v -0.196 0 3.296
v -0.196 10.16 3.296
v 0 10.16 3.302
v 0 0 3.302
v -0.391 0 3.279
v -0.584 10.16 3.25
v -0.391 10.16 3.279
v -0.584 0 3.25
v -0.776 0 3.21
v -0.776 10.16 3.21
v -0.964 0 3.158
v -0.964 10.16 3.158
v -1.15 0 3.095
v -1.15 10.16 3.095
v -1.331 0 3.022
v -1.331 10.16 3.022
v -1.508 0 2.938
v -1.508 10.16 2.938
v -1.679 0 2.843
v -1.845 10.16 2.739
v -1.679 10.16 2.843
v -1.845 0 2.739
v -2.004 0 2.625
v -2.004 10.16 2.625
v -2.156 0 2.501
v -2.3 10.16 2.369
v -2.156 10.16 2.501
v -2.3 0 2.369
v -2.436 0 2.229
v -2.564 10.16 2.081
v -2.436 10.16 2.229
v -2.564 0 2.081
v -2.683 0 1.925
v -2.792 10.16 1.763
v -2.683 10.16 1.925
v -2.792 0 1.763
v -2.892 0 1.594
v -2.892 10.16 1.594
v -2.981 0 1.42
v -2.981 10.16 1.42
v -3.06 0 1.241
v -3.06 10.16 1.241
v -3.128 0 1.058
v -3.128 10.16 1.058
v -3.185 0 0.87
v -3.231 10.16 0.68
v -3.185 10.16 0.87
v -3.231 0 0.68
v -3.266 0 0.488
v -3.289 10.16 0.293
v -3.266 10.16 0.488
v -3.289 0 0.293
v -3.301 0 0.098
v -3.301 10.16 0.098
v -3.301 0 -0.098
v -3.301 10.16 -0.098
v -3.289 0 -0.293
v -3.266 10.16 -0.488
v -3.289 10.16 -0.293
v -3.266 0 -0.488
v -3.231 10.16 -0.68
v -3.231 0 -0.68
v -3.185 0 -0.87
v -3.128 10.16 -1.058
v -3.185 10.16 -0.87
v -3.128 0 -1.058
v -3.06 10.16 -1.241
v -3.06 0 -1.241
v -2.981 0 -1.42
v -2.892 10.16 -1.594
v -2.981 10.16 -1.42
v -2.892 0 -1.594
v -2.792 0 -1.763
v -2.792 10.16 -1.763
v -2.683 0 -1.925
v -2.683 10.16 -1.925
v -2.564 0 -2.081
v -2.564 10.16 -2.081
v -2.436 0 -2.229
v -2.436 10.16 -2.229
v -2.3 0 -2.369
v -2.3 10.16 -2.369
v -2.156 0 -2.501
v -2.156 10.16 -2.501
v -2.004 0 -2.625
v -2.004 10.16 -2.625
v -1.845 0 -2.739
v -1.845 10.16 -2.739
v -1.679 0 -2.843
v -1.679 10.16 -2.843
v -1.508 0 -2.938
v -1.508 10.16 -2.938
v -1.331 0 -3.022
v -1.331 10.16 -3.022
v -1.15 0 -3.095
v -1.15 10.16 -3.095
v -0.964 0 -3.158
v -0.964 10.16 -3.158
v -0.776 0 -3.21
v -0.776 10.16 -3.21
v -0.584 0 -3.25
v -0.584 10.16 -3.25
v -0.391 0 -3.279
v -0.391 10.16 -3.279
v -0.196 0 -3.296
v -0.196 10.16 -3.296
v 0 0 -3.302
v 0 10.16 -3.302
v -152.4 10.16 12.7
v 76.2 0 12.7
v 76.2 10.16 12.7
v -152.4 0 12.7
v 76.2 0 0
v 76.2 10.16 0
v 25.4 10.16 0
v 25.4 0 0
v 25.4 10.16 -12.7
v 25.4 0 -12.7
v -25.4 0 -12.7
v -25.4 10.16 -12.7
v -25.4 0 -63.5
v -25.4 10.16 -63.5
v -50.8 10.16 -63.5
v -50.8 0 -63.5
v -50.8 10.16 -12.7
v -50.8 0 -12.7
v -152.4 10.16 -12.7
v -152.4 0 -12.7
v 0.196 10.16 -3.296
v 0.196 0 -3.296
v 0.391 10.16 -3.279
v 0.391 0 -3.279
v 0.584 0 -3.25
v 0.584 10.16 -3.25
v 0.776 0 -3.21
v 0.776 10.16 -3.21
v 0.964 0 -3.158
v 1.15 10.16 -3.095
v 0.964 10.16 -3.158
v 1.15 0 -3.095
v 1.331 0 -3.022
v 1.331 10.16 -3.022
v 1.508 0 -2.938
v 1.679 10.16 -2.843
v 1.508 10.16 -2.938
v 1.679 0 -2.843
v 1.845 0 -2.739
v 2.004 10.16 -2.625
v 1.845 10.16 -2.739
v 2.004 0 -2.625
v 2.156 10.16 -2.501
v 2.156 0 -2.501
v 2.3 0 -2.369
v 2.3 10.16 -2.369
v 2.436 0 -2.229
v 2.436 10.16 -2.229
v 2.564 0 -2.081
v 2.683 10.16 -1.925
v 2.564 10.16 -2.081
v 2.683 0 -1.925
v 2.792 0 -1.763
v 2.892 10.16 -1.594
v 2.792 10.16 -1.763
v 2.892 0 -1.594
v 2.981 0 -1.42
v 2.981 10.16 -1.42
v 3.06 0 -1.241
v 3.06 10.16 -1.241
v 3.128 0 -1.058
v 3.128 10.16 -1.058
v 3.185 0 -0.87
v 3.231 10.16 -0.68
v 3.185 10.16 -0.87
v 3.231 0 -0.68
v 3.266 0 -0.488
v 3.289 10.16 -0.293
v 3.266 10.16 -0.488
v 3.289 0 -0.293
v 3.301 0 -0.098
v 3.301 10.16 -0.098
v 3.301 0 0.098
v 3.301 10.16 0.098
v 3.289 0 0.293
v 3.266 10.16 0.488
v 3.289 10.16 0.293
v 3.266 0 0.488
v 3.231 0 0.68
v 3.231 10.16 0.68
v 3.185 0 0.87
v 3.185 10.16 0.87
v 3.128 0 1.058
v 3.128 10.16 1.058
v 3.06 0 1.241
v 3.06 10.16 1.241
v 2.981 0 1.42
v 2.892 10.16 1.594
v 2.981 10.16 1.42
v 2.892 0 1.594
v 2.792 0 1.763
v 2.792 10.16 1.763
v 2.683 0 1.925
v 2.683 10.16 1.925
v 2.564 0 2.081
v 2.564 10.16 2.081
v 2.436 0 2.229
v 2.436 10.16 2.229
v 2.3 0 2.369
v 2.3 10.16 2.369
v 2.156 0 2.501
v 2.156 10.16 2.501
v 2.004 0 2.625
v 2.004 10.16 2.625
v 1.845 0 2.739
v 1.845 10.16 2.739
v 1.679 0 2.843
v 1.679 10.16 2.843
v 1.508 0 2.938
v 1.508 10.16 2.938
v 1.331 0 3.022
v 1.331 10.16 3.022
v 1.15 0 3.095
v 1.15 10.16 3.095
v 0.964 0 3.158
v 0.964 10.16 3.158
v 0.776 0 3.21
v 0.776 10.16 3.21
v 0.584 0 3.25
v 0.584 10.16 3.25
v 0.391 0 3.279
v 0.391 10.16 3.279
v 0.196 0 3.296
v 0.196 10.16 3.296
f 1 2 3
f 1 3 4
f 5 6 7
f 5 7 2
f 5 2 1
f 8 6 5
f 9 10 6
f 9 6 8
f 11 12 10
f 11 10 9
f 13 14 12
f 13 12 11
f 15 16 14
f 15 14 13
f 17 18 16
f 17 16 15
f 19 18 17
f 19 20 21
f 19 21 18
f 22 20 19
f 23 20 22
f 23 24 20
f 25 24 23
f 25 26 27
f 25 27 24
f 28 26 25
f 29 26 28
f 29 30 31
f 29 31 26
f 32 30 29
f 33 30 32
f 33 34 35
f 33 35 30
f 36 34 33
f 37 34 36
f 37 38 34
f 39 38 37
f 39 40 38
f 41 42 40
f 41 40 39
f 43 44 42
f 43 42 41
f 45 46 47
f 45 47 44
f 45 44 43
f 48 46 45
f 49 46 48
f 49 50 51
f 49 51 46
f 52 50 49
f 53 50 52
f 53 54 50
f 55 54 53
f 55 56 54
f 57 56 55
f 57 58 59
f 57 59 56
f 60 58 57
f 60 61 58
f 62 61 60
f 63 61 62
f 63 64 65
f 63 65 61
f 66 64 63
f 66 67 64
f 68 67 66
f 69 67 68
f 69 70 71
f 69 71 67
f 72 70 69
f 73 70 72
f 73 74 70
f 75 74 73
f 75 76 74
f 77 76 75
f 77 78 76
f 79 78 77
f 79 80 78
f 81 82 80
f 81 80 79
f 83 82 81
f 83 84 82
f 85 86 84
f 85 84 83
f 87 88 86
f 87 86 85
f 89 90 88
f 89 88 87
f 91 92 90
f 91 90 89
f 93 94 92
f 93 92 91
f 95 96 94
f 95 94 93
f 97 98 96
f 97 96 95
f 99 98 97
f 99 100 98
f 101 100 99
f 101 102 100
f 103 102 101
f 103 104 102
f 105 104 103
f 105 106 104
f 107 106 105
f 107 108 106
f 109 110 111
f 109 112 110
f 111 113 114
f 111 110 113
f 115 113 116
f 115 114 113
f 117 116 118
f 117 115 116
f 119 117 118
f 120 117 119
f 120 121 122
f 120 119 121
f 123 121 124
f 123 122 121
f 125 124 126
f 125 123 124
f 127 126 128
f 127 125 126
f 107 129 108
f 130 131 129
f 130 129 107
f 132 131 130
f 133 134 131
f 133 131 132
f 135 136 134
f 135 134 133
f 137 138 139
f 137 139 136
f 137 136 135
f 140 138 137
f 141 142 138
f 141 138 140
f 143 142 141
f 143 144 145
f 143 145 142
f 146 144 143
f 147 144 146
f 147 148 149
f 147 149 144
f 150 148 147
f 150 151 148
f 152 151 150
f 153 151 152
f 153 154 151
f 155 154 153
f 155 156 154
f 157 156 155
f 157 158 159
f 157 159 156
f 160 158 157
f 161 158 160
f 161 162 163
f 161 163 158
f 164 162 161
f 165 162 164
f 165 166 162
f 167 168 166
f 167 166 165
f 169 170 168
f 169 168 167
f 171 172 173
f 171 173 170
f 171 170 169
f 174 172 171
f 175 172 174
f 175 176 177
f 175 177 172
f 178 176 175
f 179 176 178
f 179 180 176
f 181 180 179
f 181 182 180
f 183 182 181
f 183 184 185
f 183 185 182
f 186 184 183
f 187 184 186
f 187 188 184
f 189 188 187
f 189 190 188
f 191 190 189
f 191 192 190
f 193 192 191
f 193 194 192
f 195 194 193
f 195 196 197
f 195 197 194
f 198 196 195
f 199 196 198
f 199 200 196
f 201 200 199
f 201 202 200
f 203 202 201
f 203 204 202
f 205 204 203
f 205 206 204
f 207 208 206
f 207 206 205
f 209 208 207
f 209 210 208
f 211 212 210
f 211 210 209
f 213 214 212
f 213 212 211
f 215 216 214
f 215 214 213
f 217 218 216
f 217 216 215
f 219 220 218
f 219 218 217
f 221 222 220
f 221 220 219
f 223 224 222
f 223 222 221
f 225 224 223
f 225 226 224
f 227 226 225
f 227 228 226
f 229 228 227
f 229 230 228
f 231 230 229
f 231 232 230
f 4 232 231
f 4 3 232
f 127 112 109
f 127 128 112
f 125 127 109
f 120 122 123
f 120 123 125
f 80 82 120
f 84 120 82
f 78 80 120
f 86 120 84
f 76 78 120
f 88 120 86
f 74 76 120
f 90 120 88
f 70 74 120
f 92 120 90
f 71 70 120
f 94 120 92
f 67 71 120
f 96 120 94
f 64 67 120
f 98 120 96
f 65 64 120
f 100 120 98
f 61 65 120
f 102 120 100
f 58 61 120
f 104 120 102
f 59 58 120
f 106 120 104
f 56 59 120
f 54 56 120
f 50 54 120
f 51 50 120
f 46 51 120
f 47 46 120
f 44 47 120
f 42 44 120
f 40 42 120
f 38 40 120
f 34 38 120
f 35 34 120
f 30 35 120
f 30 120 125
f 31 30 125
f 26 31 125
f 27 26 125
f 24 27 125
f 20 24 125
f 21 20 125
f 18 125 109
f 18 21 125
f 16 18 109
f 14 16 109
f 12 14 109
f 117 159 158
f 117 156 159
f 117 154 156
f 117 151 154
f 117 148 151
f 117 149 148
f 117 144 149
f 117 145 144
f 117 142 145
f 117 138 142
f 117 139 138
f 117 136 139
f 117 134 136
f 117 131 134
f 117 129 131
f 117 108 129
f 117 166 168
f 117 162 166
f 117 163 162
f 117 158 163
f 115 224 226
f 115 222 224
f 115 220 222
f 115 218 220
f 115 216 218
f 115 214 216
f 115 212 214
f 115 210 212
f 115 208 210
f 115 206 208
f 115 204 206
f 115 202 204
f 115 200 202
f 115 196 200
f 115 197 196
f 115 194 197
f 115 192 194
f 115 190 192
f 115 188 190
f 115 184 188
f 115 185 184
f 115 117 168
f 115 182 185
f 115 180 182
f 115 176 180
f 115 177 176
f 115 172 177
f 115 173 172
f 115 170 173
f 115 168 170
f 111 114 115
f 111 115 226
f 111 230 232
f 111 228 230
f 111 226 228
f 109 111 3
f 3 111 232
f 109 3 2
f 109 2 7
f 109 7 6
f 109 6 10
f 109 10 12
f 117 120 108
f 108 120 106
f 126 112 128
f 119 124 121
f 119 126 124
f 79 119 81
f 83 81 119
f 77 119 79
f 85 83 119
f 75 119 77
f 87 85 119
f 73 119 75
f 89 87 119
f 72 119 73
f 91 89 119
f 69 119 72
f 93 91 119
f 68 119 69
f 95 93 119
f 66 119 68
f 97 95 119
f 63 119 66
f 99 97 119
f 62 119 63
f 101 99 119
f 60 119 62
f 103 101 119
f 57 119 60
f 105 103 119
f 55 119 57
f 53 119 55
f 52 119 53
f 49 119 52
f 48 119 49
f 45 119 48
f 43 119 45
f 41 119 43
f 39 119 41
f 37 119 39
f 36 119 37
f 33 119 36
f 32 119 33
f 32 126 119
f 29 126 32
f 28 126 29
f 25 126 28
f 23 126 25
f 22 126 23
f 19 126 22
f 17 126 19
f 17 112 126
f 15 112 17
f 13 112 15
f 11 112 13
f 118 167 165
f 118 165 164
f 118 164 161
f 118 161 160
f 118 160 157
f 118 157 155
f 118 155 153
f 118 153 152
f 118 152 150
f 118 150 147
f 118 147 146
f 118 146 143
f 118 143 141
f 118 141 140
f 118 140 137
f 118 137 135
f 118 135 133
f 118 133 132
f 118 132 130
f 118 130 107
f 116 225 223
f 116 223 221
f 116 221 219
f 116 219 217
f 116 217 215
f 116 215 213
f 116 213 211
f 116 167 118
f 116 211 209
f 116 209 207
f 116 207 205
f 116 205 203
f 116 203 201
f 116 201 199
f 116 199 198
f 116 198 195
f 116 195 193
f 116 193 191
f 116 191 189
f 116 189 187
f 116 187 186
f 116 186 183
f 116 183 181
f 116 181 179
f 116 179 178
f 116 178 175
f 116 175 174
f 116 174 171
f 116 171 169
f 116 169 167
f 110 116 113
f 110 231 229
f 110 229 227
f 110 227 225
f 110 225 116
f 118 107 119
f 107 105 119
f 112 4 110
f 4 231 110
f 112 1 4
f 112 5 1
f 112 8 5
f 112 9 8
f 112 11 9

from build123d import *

# Parameters (mm, degrees)
SKETCH1_R           = 3.302
BOSS_EXTRUDE1_DEPTH = 10.16


with BuildPart() as part:
    # Sketch1 → Boss-Extrude1 (new body)
    with BuildSketch(Plane(origin=(0, 0, 0), x_dir=(1, 0, 0), z_dir=(0, 1, 0))):
        Polygon((-25.4, 12.7), (25.4, 12.7), (25.4, 0), (76.2, 0), (76.2, -12.7), (25.4, -12.7), (-152.4, -12.7), (-152.4, 12.7), (-50.8, 12.7), (-50.8, 63.5), (-25.4, 63.5), align=None)
        with Locations(Location((0, 0, 0), (0, 0, 270))):
            Circle(SKETCH1_R, mode=Mode.SUBTRACT)
    extrude(amount=BOSS_EXTRUDE1_DEPTH)


solid = part.part
